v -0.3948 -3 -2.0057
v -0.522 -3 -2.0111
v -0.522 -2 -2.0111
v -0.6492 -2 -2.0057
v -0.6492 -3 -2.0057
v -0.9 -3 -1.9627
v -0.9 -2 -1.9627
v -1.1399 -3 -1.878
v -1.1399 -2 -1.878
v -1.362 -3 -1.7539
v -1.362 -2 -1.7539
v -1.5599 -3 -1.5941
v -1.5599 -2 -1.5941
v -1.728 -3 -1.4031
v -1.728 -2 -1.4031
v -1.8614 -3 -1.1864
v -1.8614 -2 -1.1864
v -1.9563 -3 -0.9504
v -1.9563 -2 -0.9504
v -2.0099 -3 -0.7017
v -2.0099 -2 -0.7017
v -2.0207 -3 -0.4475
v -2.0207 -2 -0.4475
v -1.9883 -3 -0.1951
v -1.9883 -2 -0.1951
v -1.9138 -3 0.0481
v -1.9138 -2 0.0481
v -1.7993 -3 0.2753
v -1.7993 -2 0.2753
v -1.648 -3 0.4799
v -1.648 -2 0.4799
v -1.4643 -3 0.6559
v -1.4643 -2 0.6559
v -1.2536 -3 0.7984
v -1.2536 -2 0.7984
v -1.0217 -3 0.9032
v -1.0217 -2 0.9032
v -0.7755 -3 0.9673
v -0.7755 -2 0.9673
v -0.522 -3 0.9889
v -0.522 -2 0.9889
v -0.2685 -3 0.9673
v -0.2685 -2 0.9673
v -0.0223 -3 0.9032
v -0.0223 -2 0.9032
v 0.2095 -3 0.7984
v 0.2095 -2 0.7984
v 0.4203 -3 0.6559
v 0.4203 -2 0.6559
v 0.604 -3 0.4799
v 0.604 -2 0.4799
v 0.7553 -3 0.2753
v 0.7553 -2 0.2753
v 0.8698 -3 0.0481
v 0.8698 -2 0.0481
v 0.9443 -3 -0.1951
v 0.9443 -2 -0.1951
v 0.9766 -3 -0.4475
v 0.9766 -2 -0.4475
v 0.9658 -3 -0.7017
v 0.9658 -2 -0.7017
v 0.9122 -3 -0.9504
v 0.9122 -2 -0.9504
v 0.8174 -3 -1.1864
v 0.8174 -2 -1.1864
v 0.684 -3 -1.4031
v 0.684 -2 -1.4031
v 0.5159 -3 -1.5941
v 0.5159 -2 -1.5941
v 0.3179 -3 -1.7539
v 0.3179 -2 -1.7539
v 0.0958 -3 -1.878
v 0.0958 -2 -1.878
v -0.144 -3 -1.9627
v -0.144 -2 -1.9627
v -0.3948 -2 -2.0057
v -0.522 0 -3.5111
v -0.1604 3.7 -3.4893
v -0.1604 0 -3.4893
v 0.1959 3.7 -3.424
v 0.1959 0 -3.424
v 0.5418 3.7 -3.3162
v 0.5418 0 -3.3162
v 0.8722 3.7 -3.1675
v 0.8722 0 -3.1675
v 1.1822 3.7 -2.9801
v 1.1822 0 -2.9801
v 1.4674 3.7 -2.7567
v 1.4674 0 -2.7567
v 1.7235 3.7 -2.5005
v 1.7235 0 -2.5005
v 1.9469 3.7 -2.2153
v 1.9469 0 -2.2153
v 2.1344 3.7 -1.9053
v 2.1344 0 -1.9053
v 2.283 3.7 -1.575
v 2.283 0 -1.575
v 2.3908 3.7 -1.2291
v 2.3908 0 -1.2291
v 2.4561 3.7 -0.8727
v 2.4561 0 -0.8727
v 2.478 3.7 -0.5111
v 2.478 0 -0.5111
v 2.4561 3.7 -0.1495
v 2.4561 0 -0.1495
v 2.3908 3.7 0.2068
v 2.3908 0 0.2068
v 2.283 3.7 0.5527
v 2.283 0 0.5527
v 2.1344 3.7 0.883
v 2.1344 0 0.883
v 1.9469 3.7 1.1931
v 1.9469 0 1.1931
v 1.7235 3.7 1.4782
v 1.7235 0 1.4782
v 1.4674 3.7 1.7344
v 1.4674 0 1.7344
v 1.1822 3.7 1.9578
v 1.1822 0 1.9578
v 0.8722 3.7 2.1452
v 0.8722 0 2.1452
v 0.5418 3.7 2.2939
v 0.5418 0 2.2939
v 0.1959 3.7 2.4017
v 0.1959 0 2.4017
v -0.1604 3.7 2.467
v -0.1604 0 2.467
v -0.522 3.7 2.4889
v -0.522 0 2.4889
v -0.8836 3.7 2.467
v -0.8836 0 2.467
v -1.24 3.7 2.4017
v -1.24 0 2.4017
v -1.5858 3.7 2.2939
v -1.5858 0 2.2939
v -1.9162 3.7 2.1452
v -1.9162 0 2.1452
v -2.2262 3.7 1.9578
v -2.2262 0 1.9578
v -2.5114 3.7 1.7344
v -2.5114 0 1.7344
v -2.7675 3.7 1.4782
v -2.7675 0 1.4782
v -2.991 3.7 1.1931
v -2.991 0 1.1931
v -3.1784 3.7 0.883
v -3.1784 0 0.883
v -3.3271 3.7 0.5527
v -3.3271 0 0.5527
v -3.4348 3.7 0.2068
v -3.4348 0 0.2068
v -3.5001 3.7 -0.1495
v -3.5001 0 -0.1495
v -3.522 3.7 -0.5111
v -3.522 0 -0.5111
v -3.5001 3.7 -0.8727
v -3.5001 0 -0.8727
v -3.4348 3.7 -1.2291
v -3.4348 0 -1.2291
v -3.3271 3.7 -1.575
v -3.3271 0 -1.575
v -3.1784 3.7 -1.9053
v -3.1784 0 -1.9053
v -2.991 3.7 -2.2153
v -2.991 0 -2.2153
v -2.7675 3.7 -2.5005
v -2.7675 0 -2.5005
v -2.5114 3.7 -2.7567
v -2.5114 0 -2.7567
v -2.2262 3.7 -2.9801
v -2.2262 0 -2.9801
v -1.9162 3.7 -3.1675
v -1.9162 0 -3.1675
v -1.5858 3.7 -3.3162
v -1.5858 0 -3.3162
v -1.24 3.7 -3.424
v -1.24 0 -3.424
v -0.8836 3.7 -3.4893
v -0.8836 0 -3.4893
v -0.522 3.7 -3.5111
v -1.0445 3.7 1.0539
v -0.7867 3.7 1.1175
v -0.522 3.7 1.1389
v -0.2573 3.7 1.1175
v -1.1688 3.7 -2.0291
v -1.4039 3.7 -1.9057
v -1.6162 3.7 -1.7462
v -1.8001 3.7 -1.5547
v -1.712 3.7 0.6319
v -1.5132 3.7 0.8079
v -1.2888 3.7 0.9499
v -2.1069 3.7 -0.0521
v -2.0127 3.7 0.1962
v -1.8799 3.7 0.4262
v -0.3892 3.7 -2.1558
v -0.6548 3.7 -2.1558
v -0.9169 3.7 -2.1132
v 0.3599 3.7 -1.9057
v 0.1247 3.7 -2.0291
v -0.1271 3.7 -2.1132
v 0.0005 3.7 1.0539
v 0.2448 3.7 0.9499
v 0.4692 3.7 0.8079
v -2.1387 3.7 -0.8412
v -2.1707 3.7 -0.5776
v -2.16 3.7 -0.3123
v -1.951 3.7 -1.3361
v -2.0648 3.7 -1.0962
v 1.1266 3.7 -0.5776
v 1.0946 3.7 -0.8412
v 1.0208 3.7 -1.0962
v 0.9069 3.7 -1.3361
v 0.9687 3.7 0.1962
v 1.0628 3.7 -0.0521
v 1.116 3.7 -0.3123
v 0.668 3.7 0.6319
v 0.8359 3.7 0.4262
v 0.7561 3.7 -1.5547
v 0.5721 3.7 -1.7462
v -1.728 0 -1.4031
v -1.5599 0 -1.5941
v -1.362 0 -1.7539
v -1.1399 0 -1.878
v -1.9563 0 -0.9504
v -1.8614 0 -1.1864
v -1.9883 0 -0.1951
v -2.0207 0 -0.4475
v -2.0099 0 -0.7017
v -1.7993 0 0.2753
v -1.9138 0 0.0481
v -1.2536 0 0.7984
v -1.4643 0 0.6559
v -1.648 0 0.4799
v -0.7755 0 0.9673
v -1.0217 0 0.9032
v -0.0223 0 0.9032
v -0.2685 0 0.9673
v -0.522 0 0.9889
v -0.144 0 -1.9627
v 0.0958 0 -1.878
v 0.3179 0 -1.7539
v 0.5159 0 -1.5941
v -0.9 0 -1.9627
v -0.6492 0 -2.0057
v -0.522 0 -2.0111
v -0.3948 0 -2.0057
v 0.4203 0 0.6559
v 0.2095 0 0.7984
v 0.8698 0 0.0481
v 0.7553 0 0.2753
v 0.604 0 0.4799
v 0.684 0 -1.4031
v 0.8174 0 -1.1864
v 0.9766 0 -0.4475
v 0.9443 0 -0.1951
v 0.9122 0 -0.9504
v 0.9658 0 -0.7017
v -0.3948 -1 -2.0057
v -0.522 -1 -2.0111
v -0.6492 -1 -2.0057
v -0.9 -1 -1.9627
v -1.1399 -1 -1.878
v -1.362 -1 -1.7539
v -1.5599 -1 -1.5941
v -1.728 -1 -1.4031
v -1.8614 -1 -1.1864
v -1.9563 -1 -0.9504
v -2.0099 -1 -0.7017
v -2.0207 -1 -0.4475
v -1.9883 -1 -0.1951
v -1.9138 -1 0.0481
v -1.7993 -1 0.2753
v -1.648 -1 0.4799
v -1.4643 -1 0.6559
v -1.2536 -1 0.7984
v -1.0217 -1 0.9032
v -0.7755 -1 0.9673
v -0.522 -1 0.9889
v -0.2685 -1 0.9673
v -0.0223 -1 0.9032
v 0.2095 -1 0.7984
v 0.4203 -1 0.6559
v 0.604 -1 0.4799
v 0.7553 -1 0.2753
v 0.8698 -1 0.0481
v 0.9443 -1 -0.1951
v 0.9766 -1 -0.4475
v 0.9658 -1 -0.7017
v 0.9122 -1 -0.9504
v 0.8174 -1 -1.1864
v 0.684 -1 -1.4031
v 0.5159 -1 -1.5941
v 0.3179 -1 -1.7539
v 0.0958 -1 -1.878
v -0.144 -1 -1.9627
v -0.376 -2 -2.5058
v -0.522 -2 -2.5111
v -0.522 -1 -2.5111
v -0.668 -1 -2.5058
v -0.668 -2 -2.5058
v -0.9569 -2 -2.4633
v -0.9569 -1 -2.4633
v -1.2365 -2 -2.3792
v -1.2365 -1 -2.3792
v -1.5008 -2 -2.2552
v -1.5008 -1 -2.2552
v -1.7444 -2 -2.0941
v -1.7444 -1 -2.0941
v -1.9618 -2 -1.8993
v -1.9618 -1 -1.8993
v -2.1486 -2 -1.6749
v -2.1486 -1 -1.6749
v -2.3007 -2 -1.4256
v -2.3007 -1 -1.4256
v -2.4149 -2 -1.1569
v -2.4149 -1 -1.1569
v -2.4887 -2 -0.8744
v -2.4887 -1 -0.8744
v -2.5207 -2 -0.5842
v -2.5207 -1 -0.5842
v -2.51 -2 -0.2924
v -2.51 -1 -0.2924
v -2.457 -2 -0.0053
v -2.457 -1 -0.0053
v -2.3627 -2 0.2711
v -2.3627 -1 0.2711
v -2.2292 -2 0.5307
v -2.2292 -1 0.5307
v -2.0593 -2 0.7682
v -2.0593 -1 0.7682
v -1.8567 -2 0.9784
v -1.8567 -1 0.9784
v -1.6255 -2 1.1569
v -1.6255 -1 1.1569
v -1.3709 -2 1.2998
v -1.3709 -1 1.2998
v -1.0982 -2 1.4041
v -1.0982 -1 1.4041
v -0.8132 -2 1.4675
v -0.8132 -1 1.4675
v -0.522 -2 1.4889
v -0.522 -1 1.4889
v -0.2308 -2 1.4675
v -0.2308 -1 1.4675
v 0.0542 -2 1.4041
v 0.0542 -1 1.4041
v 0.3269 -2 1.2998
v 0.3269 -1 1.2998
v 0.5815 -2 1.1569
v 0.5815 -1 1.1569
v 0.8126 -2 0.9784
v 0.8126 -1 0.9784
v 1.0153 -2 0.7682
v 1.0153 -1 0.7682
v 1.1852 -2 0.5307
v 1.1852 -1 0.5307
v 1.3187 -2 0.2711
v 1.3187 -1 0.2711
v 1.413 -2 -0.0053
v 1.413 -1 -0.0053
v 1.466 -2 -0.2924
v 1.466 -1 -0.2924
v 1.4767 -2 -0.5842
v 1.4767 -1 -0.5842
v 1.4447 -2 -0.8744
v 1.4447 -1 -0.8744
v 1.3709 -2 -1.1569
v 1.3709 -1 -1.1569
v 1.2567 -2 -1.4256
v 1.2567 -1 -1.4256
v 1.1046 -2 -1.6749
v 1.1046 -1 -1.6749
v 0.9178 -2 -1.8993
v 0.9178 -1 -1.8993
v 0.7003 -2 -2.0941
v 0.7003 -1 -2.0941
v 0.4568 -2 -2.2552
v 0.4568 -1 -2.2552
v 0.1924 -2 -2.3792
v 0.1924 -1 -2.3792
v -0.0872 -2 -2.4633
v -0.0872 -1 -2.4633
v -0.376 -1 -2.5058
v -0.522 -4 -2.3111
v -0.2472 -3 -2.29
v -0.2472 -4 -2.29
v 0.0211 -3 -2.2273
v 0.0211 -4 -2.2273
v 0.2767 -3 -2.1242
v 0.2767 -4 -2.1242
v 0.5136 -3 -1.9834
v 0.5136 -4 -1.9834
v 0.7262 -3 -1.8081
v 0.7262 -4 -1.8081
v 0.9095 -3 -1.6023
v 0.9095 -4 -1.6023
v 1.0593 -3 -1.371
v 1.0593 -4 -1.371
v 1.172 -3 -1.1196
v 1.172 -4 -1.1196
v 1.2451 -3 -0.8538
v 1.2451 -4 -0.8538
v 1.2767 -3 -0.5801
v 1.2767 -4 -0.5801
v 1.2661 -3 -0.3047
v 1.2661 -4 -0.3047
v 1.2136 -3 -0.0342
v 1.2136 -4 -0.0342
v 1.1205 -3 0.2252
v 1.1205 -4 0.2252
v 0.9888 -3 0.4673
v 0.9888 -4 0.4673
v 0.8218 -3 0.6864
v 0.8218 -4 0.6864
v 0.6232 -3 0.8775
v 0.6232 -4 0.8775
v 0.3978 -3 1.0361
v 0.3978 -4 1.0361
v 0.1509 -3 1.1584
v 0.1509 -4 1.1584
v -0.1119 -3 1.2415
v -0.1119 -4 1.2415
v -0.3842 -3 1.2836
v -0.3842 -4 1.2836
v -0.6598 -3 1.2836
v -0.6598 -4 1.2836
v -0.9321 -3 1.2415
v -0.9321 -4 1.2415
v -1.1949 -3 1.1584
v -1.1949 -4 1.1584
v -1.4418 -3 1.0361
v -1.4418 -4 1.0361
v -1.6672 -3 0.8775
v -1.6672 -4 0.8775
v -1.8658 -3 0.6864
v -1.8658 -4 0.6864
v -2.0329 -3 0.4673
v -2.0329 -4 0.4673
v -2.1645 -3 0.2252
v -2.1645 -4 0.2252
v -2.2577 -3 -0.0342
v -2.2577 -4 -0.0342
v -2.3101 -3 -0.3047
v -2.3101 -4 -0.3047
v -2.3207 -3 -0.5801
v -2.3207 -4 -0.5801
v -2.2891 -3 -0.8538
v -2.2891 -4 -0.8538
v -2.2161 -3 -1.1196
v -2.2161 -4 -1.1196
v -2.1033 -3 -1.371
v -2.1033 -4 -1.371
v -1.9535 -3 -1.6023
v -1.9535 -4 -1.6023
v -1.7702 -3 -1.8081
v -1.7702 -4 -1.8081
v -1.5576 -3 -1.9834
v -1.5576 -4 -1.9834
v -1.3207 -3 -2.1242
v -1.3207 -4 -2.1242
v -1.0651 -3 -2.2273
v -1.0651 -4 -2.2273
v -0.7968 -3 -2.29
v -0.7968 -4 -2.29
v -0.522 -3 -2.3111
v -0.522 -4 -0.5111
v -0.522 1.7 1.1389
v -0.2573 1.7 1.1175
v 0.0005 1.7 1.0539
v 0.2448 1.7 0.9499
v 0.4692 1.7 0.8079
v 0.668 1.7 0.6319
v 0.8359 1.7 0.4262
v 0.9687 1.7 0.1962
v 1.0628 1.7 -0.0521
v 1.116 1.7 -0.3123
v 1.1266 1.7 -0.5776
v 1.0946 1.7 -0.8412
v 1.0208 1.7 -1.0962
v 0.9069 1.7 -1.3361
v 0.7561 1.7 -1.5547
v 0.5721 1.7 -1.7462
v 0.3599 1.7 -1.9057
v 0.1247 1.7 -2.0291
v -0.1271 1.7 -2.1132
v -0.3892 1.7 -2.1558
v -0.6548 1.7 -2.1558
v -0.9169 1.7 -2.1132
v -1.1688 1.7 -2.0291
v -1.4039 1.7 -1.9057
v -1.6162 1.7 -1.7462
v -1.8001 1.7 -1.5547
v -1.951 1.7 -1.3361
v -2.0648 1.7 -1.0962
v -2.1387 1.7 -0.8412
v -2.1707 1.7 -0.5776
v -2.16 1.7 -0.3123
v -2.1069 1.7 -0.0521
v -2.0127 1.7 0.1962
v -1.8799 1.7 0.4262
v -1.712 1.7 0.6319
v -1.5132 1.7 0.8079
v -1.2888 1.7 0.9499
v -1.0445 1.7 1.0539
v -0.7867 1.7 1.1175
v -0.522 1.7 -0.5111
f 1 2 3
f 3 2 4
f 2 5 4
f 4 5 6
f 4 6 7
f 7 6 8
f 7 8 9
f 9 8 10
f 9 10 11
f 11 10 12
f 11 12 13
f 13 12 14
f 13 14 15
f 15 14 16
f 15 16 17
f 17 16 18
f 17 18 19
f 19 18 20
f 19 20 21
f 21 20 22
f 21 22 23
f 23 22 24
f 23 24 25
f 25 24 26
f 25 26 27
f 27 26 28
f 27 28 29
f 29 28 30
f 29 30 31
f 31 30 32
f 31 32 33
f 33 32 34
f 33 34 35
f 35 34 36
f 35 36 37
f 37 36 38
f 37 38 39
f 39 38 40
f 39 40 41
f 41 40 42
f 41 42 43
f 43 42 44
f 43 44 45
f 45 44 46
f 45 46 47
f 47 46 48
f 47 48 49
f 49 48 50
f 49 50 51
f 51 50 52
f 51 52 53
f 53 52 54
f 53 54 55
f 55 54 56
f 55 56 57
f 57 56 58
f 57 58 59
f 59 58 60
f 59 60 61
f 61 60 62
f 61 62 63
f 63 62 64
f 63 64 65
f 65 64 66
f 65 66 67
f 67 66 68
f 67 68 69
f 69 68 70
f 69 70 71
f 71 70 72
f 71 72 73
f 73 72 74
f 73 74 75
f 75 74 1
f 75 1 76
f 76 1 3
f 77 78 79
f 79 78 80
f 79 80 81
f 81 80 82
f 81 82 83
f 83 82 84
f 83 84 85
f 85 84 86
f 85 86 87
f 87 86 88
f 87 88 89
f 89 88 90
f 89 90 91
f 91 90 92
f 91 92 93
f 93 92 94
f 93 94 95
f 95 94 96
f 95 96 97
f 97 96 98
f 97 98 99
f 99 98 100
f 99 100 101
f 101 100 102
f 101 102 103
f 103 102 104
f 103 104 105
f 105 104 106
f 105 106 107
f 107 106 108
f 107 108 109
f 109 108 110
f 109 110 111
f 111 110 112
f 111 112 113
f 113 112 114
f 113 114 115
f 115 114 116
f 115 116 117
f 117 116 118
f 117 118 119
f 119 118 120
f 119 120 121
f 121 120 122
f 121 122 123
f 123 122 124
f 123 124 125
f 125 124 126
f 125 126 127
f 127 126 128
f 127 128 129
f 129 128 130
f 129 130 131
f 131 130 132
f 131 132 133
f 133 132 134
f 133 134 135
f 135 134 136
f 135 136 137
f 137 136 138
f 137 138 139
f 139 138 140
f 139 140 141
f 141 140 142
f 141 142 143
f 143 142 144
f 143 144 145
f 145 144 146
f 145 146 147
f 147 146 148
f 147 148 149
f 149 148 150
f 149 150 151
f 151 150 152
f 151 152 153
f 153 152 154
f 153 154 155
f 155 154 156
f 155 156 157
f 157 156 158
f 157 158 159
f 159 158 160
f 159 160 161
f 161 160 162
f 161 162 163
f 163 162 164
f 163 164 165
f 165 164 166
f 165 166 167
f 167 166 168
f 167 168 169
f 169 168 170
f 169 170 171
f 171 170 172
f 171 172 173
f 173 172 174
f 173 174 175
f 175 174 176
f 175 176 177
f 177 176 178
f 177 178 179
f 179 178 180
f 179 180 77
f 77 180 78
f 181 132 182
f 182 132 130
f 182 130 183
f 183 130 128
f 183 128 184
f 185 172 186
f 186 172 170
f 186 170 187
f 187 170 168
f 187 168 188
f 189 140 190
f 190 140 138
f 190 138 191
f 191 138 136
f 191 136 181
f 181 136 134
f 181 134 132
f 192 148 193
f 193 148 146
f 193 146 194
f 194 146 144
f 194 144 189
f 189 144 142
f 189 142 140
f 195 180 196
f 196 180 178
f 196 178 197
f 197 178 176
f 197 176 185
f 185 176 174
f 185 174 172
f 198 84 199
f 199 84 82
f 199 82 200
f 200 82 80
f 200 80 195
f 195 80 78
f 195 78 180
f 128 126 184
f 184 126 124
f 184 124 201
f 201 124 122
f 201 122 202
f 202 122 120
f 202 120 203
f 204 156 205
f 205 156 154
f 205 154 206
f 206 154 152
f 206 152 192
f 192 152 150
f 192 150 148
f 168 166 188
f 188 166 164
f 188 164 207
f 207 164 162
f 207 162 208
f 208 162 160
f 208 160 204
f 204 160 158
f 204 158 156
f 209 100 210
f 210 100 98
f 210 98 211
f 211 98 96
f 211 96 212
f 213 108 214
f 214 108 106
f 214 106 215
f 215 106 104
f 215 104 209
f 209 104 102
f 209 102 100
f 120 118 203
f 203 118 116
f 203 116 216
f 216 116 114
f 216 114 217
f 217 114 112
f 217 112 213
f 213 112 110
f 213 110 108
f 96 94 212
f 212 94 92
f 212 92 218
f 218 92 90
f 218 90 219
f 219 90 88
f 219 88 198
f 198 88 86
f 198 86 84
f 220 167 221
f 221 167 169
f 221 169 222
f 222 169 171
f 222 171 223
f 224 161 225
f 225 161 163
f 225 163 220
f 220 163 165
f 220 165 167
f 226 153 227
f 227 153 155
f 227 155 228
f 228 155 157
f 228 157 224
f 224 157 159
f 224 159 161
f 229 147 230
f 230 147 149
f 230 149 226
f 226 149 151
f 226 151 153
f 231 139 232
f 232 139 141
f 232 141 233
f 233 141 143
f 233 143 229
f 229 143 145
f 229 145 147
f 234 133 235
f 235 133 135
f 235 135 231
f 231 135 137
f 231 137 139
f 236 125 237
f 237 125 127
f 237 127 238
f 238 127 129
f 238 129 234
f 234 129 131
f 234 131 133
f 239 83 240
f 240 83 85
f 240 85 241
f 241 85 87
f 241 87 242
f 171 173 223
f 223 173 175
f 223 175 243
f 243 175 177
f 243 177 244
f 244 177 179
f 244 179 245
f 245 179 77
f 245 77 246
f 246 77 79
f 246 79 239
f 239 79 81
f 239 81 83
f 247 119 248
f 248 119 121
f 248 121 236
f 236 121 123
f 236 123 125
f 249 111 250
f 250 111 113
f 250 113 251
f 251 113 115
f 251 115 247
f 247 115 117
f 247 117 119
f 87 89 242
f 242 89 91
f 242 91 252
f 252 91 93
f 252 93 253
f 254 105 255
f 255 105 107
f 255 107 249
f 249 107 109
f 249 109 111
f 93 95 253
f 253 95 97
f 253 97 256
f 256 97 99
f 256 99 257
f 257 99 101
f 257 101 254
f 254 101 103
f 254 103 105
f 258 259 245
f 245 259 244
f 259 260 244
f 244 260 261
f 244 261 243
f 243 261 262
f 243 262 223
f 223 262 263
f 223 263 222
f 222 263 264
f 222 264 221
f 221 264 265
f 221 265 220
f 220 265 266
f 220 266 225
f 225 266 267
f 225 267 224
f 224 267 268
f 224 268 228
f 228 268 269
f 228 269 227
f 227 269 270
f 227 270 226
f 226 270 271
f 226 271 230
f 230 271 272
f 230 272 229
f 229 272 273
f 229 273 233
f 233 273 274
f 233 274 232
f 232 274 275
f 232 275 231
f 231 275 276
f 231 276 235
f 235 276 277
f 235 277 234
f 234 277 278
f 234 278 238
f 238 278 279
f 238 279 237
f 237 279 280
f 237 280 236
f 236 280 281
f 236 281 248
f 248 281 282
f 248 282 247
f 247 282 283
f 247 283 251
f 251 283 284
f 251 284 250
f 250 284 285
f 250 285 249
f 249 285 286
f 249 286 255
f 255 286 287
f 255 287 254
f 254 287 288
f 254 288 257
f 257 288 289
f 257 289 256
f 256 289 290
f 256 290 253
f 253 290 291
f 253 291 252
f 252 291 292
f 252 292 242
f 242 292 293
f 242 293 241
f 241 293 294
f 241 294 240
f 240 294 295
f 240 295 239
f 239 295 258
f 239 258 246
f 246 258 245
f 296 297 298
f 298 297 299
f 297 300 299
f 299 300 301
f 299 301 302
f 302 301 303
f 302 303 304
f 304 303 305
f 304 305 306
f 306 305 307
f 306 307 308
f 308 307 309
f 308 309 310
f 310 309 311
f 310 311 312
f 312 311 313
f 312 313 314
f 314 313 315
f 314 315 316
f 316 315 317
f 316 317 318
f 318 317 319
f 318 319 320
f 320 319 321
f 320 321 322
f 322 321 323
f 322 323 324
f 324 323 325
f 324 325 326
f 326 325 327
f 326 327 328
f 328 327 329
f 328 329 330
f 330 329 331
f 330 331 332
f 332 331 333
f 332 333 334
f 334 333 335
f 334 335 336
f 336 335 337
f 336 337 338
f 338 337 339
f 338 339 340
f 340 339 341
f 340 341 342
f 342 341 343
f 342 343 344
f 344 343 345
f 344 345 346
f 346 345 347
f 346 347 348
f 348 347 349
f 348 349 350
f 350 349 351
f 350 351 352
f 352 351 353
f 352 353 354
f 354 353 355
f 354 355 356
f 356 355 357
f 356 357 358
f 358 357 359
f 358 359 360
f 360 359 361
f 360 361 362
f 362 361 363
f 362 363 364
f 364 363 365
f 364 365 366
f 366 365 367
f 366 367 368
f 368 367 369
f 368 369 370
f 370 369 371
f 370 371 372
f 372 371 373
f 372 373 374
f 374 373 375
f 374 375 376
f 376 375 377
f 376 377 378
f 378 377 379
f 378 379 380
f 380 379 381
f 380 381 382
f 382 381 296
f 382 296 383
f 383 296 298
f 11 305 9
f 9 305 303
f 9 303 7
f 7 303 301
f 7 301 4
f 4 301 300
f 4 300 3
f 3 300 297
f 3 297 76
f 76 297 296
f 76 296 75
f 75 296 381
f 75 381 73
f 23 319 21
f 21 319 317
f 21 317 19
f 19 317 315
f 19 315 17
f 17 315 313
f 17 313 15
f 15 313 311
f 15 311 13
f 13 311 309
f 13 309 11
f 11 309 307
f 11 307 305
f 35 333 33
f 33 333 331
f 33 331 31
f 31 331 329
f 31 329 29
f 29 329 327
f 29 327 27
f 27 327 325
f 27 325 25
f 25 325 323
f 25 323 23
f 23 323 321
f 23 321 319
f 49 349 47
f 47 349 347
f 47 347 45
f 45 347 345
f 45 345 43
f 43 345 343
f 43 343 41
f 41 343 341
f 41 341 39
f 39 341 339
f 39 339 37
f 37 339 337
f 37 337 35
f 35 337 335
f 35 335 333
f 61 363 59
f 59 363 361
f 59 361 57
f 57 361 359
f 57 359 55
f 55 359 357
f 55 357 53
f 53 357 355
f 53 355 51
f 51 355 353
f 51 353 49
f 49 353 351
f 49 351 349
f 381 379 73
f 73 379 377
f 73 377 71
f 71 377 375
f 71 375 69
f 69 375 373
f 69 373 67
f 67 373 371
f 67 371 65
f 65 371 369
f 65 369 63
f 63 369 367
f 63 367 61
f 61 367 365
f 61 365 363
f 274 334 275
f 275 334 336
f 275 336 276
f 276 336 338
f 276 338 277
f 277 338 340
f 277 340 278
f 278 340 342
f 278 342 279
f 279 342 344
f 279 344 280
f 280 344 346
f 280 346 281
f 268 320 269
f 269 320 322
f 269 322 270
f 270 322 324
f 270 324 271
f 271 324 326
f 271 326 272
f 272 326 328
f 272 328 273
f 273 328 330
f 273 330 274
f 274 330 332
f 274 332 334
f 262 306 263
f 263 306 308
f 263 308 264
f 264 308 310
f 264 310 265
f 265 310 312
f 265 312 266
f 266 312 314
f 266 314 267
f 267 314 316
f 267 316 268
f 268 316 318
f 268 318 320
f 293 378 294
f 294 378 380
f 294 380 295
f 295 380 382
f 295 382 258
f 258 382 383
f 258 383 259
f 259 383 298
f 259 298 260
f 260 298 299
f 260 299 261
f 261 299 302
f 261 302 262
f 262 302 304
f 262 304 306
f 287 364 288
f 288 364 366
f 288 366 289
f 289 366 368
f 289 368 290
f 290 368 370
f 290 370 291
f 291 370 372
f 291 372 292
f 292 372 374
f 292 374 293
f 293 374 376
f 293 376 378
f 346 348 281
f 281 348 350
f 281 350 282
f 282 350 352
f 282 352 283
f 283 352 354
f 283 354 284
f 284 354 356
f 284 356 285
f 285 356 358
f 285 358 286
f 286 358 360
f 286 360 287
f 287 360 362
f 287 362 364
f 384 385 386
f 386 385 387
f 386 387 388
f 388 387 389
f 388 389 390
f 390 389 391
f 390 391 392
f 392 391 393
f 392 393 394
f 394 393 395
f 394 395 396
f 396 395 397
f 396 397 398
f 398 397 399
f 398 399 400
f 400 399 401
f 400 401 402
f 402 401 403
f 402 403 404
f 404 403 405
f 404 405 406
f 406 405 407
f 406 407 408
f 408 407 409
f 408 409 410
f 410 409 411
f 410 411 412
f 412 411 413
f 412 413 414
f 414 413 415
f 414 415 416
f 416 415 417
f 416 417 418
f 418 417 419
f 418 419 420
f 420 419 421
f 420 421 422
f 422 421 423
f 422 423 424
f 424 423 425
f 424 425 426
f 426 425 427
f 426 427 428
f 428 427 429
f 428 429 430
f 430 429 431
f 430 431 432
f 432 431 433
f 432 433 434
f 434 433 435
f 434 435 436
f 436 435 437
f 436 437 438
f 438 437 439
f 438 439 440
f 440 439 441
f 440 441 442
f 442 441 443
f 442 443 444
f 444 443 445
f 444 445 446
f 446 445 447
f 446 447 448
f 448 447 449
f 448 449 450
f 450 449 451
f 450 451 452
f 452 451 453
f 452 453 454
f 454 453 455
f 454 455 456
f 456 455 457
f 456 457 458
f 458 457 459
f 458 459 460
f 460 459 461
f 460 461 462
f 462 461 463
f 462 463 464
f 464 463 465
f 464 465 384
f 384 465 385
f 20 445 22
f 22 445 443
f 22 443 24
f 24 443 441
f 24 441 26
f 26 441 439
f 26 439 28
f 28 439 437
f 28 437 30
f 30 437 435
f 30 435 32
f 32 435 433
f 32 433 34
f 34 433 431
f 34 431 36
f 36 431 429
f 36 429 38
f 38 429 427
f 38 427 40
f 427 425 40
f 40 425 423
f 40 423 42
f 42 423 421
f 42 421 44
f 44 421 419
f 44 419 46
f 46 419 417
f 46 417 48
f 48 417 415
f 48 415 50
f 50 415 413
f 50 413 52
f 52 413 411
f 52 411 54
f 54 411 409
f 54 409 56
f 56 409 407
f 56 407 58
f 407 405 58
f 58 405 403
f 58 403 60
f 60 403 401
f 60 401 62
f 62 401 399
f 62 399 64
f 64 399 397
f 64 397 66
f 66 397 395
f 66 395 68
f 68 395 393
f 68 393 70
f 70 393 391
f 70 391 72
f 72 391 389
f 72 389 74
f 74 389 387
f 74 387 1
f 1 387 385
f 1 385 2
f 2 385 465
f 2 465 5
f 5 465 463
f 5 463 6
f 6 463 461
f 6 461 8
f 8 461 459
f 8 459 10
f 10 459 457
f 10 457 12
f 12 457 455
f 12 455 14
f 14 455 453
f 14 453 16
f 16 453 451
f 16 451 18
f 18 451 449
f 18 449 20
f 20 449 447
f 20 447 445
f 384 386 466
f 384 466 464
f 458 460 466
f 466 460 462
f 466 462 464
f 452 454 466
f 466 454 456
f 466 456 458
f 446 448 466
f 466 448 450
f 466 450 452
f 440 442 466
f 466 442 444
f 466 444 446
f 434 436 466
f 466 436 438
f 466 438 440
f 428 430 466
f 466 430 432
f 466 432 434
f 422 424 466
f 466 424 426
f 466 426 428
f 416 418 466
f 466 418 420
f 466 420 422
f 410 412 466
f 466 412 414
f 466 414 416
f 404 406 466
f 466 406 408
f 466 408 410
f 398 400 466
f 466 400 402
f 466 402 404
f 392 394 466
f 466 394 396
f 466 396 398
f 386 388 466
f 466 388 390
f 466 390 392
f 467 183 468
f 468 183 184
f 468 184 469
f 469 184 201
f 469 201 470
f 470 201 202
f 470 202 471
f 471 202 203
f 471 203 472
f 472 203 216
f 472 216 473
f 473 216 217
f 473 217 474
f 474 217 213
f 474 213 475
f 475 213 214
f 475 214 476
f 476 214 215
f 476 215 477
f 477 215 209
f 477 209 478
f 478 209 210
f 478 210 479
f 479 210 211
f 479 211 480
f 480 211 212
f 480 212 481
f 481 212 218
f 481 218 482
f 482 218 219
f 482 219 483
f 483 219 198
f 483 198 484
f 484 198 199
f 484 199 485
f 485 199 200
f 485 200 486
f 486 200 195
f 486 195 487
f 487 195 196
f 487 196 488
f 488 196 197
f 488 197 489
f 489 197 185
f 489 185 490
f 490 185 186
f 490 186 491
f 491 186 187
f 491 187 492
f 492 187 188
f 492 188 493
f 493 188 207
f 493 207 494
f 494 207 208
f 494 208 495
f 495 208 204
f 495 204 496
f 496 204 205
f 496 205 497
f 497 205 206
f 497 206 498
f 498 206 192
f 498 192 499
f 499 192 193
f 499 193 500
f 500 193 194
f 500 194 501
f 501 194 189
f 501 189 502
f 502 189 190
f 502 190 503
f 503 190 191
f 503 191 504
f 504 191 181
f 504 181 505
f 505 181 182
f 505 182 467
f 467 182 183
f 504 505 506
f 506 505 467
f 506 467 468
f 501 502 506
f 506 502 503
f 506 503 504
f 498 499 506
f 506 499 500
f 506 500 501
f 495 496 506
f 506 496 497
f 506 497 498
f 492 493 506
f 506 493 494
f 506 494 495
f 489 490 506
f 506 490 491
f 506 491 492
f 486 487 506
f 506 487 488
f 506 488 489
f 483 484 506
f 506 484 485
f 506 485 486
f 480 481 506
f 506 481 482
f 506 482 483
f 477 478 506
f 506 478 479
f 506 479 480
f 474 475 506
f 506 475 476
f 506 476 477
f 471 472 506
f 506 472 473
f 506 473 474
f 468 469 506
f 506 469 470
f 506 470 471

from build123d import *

# Parameters (mm, degrees)
SKETCH1_R           = 3
BOSS_EXTRUDE1_DEPTH = 3.7
SKETCH1_3_R         = 1.6
BOSS_EXTRUDE2_DEPTH = 1
SKETCH5_R           = 1.5
BOSS_EXTRUDE3_DEPTH = 1
SKETCH6_R           = 2
BOSS_EXTRUDE4_DEPTH = 1
SKETCH8_R           = 1.5
BOSS_EXTRUDE5_DEPTH = 2
SKETCH10_R          = 1.8
BOSS_EXTRUDE6_DEPTH = 1
SKETCH12_R          = 1.65
CUT_EXTRUDE1_DEPTH  = 2


with BuildPart() as part:
    # Sketch1 → Boss-Extrude1 (new body)
    with BuildSketch(Plane(origin=(0, 0, 0), x_dir=(1, 0, 0), z_dir=(0, 1, 0))):
        with Locations((-0.522013312, 0.511138034)):
            Circle(SKETCH1_R)
    extrude(amount=BOSS_EXTRUDE1_DEPTH)

    # Sketch1<3> → Boss-Extrude2 (add)
    with BuildSketch(Plane(origin=(0, 0, 0), x_dir=(1, 0, 0), z_dir=(0, 1, 0))):
        with Locations((-0.522013312, 0.511138034)):
            Circle(SKETCH1_3_R)
    extrude(amount=BOSS_EXTRUDE2_DEPTH)

    # Sketch5 → Boss-Extrude3 (add)
    with BuildSketch(Plane.XZ):
        with Locations((-0.522013312, -0.511138034)):
            Circle(SKETCH5_R)
    extrude(amount=BOSS_EXTRUDE3_DEPTH)

    # Sketch6 → Boss-Extrude4 (add)
    with BuildSketch(Plane.XZ.offset(1)):
        with Locations((-0.522013312, -0.511138034)):
            Circle(SKETCH6_R)
    extrude(amount=BOSS_EXTRUDE4_DEPTH)

    # Sketch8 → Boss-Extrude5 (add)
    with BuildSketch(Plane(origin=(0, -2, 0), x_dir=(-1, 0, 0), z_dir=(0, -1, 0))):
        with Locations((0.522013312, 0.511138034)):
            Circle(SKETCH8_R)
    extrude(amount=BOSS_EXTRUDE5_DEPTH)

    # Sketch10 → Boss-Extrude6 (add)
    with BuildSketch(Plane.XZ.offset(4)):
        with Locations((-0.522013312, -0.511138034)):
            Circle(SKETCH10_R)
    extrude(amount=-BOSS_EXTRUDE6_DEPTH)

    # Sketch12 → Cut-Extrude1 (cut)
    with BuildSketch(Plane(origin=(0, 3.7, 0), x_dir=(1, 0, 0), z_dir=(0, 1, 0))):
        with Locations((-0.522013312, 0.511138034)):
            Circle(SKETCH12_R)
    extrude(amount=-CUT_EXTRUDE1_DEPTH, mode=Mode.SUBTRACT)


solid = part.part
